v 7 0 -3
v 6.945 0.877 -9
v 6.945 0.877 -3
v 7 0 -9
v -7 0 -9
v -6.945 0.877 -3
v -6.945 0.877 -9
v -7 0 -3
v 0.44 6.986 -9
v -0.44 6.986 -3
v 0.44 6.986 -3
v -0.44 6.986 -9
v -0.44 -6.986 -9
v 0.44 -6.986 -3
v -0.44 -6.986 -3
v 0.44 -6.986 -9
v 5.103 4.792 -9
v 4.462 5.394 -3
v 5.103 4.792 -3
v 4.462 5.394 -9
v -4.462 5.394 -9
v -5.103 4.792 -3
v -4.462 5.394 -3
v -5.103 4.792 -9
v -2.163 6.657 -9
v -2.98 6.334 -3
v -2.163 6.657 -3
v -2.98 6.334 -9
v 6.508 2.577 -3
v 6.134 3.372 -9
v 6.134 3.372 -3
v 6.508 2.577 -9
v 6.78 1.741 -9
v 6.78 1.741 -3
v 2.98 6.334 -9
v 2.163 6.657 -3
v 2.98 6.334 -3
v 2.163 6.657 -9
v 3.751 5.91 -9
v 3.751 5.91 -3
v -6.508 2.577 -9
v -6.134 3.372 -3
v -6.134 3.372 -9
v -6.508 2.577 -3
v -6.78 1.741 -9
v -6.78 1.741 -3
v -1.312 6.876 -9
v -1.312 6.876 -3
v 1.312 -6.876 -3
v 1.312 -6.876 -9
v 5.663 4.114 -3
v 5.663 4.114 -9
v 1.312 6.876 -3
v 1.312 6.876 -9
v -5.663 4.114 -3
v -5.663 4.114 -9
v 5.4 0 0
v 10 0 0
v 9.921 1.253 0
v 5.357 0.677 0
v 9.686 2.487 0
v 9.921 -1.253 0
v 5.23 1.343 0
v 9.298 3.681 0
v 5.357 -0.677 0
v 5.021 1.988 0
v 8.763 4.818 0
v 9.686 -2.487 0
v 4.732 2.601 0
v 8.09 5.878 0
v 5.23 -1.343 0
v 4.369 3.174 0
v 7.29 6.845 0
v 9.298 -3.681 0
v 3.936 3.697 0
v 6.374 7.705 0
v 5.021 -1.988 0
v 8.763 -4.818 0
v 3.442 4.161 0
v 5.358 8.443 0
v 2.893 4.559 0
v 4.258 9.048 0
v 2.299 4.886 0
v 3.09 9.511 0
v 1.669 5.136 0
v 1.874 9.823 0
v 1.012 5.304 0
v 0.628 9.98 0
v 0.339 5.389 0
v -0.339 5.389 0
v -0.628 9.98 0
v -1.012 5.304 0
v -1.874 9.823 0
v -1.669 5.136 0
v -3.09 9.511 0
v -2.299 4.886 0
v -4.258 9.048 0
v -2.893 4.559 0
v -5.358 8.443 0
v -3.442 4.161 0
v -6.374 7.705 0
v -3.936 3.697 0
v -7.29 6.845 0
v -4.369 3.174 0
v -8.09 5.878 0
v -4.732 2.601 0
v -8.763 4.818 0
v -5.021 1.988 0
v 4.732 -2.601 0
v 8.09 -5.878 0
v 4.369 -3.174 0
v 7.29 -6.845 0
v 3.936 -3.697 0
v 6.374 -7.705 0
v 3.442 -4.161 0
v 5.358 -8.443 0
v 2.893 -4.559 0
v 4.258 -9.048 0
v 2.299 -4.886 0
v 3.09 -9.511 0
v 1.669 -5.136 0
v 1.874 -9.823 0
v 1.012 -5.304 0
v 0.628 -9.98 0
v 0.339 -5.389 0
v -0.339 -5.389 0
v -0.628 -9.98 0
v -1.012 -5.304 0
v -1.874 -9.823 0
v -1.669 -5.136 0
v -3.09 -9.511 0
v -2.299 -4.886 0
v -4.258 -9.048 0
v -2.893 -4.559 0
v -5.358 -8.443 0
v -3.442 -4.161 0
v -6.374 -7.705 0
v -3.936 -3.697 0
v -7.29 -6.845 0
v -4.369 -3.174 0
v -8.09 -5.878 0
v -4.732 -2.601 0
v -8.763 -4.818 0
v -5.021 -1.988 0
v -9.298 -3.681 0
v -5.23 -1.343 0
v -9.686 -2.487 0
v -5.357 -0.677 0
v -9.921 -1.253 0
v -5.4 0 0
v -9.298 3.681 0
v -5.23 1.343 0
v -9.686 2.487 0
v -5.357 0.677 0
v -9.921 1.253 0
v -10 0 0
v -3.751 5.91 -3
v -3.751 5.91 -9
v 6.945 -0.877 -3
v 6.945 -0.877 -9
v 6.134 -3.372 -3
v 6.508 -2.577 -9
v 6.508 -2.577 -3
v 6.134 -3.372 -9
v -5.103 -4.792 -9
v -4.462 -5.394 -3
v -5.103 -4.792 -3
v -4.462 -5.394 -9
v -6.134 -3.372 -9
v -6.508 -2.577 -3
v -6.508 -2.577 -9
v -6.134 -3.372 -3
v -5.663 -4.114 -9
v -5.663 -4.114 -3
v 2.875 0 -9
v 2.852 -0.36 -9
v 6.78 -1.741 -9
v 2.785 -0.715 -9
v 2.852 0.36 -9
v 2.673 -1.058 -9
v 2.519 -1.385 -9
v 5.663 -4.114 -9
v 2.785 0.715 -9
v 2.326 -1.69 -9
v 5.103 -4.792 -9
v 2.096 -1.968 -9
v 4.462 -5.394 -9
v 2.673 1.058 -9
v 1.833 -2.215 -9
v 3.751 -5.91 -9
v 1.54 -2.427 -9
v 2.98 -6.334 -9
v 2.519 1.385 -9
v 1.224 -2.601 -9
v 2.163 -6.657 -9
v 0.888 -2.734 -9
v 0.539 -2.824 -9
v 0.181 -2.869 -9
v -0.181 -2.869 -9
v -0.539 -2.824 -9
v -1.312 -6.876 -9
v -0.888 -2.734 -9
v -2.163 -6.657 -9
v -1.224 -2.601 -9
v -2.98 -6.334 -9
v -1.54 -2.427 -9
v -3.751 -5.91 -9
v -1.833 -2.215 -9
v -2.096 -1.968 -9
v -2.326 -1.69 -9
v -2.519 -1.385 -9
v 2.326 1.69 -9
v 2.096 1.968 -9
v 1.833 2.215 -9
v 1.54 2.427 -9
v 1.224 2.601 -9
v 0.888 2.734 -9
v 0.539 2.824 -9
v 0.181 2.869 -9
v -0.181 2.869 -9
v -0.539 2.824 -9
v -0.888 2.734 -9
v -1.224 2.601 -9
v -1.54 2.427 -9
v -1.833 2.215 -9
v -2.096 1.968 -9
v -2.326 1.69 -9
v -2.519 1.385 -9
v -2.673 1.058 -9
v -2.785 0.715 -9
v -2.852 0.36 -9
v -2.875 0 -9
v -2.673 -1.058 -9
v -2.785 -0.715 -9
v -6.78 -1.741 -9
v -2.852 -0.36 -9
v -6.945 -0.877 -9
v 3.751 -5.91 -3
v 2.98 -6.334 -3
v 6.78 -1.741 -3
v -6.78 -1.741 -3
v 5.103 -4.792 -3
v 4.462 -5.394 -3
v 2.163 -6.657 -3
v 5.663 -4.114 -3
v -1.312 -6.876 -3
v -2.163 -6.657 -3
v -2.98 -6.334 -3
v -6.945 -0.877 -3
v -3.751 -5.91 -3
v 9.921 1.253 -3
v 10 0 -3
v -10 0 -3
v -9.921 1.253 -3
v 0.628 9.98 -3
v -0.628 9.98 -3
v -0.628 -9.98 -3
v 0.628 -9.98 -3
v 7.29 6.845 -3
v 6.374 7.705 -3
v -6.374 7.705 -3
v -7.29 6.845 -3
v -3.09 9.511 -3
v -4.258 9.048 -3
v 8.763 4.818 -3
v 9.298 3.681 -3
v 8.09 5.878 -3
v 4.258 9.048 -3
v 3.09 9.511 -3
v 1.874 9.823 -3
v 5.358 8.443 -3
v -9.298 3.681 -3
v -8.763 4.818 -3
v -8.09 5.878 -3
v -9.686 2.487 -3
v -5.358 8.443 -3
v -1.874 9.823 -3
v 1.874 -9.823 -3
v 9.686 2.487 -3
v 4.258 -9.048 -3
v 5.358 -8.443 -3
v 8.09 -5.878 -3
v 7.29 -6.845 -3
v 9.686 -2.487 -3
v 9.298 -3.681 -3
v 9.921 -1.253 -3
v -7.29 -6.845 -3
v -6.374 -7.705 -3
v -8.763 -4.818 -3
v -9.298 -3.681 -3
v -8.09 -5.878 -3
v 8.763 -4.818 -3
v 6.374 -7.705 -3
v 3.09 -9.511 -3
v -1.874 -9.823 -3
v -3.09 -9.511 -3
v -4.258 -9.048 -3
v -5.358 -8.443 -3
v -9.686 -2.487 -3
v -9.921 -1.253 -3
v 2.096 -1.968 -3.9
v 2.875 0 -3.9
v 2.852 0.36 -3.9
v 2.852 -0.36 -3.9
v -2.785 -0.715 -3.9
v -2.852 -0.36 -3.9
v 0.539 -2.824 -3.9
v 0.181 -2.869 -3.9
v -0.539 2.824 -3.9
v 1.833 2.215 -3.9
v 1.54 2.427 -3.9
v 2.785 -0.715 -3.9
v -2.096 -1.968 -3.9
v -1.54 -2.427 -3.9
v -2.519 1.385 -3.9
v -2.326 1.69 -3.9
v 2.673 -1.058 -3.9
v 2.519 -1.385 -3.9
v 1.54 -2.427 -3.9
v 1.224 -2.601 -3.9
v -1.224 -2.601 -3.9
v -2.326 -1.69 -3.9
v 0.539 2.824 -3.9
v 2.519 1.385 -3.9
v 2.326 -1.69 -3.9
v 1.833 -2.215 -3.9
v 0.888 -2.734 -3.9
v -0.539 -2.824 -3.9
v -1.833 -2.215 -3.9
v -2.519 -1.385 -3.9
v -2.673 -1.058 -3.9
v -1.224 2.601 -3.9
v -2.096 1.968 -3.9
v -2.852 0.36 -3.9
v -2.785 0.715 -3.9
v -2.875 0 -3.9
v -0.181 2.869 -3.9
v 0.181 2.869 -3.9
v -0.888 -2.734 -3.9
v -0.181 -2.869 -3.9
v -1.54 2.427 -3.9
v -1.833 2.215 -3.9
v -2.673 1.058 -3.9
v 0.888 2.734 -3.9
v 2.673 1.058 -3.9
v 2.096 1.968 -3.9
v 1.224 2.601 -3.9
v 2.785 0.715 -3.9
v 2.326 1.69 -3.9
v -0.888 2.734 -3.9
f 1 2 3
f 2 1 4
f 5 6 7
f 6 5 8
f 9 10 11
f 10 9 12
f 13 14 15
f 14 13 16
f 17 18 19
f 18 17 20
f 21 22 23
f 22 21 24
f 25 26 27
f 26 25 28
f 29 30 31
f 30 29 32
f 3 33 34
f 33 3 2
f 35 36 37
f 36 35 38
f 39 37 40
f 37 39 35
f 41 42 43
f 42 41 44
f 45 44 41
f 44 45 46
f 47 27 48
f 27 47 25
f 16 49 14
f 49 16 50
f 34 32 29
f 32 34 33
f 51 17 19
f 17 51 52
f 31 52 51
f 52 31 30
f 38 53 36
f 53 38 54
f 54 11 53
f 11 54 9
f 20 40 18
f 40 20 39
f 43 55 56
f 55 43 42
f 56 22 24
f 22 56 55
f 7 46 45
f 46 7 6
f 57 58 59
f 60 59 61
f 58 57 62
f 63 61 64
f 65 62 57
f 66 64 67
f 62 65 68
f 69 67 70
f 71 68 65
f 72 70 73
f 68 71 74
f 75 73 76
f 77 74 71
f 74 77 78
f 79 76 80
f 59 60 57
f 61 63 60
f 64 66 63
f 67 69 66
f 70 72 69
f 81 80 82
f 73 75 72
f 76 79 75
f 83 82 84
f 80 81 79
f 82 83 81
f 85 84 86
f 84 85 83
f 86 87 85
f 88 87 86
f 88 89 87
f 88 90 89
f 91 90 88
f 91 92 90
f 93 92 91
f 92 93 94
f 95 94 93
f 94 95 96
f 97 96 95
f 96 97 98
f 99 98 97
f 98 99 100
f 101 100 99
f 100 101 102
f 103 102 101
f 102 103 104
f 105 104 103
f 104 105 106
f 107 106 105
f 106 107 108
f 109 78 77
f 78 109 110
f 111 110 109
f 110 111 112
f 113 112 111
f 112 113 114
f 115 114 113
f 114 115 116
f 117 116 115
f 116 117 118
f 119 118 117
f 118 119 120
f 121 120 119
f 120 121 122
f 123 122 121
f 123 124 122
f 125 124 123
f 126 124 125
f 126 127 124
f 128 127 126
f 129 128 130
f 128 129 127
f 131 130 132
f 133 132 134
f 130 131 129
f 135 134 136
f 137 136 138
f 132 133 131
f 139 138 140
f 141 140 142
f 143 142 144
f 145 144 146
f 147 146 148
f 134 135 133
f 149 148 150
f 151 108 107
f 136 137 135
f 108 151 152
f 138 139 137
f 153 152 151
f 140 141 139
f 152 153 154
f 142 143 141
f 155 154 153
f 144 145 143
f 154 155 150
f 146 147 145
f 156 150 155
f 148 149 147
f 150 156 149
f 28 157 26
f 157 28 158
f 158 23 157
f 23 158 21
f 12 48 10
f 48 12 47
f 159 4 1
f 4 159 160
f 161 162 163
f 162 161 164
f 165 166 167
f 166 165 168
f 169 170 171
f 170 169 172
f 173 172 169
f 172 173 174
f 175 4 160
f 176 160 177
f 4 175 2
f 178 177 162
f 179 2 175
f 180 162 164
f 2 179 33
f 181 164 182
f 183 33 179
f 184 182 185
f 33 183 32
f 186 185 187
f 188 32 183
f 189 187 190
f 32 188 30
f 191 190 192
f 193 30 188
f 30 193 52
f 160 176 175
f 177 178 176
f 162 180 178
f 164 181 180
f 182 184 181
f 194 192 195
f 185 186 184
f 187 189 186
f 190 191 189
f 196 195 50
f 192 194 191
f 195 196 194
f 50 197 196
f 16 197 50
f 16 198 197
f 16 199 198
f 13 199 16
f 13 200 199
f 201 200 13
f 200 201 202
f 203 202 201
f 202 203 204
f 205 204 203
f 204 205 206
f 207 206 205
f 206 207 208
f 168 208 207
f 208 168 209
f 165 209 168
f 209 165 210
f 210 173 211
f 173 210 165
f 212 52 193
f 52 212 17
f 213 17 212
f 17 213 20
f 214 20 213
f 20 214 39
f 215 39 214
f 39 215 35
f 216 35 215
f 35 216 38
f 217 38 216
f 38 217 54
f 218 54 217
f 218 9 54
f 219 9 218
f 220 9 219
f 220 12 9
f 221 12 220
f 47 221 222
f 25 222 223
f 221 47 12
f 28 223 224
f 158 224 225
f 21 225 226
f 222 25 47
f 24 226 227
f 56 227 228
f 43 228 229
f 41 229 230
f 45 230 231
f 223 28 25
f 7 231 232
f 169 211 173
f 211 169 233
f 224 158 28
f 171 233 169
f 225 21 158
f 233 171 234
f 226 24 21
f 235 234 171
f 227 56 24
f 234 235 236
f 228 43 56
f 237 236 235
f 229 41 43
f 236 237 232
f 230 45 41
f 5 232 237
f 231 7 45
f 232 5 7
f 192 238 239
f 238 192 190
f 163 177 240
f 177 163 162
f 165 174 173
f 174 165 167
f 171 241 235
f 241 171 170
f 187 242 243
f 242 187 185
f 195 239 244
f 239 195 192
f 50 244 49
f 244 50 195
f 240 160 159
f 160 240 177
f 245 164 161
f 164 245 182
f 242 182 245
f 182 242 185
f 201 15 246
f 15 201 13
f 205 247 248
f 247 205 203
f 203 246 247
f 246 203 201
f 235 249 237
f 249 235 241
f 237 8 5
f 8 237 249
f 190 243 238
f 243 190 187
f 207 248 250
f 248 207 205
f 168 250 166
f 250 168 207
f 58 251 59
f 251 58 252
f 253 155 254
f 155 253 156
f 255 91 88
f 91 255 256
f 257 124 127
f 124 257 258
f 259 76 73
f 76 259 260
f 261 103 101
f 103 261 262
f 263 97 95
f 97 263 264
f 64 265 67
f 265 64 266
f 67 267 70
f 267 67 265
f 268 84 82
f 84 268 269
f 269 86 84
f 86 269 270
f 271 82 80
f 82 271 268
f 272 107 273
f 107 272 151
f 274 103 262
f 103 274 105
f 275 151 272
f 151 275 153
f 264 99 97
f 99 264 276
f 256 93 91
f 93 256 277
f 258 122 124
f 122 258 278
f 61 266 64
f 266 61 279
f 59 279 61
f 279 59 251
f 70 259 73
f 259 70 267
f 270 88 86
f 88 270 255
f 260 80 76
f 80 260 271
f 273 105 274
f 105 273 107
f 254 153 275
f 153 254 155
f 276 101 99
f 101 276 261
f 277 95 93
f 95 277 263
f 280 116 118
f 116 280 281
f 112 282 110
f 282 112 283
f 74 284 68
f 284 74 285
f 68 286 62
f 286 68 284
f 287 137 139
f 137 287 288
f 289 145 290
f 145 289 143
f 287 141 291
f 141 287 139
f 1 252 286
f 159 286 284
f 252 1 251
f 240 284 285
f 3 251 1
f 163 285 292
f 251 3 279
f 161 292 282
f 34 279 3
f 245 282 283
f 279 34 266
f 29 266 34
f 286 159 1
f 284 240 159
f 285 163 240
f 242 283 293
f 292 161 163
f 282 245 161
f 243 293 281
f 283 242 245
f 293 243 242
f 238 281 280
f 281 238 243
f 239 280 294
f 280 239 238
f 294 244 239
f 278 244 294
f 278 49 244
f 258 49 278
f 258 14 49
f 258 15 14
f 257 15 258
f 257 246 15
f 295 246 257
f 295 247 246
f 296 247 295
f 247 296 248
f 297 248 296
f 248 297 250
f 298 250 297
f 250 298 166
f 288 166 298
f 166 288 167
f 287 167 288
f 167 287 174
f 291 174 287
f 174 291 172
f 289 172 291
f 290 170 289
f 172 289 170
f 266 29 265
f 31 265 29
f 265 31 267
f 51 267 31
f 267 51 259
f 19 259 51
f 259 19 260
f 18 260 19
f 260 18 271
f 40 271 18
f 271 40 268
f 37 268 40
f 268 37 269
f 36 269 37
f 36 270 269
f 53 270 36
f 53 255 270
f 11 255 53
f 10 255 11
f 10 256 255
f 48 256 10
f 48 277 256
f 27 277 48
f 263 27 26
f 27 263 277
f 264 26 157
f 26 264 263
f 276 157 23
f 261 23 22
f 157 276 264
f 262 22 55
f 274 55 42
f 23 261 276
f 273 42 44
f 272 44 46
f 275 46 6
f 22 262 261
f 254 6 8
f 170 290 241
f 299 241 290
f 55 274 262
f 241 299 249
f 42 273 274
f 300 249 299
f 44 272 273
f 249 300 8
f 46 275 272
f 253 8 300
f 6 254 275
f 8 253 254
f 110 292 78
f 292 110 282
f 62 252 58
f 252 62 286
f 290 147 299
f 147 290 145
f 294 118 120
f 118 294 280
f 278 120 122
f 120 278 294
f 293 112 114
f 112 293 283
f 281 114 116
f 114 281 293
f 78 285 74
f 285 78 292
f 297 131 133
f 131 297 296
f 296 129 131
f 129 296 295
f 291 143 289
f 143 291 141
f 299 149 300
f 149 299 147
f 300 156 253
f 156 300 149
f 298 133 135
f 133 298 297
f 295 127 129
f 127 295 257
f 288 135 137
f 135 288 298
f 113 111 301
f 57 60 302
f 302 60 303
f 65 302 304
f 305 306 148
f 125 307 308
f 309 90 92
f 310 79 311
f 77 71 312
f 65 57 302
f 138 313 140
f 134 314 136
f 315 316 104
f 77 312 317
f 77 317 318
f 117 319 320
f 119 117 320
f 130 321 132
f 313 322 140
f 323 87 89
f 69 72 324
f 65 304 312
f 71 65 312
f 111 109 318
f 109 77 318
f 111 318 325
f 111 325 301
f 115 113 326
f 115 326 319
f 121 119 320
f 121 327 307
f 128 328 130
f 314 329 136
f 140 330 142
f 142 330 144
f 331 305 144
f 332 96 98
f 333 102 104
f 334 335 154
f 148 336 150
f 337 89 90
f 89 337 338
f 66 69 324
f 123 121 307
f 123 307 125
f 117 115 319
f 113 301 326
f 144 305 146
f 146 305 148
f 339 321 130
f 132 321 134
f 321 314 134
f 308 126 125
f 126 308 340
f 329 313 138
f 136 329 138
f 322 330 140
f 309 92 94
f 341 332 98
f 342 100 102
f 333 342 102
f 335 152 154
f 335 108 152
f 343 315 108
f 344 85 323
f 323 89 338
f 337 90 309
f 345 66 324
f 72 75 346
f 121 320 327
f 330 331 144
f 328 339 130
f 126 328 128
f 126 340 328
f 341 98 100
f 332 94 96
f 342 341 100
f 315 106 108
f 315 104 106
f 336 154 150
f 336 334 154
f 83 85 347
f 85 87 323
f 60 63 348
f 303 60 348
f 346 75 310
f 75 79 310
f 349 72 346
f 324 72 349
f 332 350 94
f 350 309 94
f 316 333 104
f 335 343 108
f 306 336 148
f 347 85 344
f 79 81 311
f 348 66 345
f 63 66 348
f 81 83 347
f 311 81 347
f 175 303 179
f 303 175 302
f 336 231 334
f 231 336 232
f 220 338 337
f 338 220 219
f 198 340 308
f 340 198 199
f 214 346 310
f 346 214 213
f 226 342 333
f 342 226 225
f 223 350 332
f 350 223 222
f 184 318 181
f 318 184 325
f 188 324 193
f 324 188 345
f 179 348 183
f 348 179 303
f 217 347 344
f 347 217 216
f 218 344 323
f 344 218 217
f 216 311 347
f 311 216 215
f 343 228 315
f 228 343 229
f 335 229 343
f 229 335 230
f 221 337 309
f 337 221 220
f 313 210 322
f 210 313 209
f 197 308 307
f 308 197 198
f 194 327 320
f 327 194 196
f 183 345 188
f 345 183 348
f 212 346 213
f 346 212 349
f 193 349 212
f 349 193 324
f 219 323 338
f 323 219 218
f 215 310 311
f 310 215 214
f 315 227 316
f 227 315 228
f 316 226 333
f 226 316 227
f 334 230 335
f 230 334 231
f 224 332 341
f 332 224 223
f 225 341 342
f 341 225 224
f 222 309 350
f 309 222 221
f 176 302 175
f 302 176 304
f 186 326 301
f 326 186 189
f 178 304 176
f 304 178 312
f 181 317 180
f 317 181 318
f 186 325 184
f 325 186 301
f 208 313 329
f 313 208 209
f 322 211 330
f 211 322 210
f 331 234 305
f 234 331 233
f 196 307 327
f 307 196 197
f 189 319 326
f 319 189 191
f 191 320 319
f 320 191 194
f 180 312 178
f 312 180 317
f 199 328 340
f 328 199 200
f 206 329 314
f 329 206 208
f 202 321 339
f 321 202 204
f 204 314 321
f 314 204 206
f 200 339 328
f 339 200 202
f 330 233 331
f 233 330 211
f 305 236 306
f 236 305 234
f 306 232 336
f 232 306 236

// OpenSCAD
$fn = 50;


difference() {
	union() {
		translate(v = [0, 0, -9.0000000000]) {
			cylinder(h = 9, r = 7.0000000000);
		}
		translate(v = [0, 0, -3.0000000000]) {
			cylinder(h = 3, r = 10.0000000000);
		}
	}
	union() {
		translate(v = [0, 0, 0]) {
			rotate(a = [0, 0, 0]) {
				difference() {
					union() {
						#translate(v = [0, 0, -9.0000000000]) {
							cylinder(h = 9, r = 2.6000000000);
						}
						#translate(v = [0, 0, -3.9000000000]) {
							cylinder(h = 3.9000000000, r = 7.0000000000, r1 = 2.8750000000, r2 = 5.4000000000);
						}
						#translate(v = [0, 0, -9.0000000000]) {
							cylinder(h = 9, r = 2.8750000000);
						}
						#translate(v = [0, 0, -9.0000000000]) {
							cylinder(h = 9, r = 2.6000000000);
						}
					}
					union();
				}
			}
		}
	}
}
